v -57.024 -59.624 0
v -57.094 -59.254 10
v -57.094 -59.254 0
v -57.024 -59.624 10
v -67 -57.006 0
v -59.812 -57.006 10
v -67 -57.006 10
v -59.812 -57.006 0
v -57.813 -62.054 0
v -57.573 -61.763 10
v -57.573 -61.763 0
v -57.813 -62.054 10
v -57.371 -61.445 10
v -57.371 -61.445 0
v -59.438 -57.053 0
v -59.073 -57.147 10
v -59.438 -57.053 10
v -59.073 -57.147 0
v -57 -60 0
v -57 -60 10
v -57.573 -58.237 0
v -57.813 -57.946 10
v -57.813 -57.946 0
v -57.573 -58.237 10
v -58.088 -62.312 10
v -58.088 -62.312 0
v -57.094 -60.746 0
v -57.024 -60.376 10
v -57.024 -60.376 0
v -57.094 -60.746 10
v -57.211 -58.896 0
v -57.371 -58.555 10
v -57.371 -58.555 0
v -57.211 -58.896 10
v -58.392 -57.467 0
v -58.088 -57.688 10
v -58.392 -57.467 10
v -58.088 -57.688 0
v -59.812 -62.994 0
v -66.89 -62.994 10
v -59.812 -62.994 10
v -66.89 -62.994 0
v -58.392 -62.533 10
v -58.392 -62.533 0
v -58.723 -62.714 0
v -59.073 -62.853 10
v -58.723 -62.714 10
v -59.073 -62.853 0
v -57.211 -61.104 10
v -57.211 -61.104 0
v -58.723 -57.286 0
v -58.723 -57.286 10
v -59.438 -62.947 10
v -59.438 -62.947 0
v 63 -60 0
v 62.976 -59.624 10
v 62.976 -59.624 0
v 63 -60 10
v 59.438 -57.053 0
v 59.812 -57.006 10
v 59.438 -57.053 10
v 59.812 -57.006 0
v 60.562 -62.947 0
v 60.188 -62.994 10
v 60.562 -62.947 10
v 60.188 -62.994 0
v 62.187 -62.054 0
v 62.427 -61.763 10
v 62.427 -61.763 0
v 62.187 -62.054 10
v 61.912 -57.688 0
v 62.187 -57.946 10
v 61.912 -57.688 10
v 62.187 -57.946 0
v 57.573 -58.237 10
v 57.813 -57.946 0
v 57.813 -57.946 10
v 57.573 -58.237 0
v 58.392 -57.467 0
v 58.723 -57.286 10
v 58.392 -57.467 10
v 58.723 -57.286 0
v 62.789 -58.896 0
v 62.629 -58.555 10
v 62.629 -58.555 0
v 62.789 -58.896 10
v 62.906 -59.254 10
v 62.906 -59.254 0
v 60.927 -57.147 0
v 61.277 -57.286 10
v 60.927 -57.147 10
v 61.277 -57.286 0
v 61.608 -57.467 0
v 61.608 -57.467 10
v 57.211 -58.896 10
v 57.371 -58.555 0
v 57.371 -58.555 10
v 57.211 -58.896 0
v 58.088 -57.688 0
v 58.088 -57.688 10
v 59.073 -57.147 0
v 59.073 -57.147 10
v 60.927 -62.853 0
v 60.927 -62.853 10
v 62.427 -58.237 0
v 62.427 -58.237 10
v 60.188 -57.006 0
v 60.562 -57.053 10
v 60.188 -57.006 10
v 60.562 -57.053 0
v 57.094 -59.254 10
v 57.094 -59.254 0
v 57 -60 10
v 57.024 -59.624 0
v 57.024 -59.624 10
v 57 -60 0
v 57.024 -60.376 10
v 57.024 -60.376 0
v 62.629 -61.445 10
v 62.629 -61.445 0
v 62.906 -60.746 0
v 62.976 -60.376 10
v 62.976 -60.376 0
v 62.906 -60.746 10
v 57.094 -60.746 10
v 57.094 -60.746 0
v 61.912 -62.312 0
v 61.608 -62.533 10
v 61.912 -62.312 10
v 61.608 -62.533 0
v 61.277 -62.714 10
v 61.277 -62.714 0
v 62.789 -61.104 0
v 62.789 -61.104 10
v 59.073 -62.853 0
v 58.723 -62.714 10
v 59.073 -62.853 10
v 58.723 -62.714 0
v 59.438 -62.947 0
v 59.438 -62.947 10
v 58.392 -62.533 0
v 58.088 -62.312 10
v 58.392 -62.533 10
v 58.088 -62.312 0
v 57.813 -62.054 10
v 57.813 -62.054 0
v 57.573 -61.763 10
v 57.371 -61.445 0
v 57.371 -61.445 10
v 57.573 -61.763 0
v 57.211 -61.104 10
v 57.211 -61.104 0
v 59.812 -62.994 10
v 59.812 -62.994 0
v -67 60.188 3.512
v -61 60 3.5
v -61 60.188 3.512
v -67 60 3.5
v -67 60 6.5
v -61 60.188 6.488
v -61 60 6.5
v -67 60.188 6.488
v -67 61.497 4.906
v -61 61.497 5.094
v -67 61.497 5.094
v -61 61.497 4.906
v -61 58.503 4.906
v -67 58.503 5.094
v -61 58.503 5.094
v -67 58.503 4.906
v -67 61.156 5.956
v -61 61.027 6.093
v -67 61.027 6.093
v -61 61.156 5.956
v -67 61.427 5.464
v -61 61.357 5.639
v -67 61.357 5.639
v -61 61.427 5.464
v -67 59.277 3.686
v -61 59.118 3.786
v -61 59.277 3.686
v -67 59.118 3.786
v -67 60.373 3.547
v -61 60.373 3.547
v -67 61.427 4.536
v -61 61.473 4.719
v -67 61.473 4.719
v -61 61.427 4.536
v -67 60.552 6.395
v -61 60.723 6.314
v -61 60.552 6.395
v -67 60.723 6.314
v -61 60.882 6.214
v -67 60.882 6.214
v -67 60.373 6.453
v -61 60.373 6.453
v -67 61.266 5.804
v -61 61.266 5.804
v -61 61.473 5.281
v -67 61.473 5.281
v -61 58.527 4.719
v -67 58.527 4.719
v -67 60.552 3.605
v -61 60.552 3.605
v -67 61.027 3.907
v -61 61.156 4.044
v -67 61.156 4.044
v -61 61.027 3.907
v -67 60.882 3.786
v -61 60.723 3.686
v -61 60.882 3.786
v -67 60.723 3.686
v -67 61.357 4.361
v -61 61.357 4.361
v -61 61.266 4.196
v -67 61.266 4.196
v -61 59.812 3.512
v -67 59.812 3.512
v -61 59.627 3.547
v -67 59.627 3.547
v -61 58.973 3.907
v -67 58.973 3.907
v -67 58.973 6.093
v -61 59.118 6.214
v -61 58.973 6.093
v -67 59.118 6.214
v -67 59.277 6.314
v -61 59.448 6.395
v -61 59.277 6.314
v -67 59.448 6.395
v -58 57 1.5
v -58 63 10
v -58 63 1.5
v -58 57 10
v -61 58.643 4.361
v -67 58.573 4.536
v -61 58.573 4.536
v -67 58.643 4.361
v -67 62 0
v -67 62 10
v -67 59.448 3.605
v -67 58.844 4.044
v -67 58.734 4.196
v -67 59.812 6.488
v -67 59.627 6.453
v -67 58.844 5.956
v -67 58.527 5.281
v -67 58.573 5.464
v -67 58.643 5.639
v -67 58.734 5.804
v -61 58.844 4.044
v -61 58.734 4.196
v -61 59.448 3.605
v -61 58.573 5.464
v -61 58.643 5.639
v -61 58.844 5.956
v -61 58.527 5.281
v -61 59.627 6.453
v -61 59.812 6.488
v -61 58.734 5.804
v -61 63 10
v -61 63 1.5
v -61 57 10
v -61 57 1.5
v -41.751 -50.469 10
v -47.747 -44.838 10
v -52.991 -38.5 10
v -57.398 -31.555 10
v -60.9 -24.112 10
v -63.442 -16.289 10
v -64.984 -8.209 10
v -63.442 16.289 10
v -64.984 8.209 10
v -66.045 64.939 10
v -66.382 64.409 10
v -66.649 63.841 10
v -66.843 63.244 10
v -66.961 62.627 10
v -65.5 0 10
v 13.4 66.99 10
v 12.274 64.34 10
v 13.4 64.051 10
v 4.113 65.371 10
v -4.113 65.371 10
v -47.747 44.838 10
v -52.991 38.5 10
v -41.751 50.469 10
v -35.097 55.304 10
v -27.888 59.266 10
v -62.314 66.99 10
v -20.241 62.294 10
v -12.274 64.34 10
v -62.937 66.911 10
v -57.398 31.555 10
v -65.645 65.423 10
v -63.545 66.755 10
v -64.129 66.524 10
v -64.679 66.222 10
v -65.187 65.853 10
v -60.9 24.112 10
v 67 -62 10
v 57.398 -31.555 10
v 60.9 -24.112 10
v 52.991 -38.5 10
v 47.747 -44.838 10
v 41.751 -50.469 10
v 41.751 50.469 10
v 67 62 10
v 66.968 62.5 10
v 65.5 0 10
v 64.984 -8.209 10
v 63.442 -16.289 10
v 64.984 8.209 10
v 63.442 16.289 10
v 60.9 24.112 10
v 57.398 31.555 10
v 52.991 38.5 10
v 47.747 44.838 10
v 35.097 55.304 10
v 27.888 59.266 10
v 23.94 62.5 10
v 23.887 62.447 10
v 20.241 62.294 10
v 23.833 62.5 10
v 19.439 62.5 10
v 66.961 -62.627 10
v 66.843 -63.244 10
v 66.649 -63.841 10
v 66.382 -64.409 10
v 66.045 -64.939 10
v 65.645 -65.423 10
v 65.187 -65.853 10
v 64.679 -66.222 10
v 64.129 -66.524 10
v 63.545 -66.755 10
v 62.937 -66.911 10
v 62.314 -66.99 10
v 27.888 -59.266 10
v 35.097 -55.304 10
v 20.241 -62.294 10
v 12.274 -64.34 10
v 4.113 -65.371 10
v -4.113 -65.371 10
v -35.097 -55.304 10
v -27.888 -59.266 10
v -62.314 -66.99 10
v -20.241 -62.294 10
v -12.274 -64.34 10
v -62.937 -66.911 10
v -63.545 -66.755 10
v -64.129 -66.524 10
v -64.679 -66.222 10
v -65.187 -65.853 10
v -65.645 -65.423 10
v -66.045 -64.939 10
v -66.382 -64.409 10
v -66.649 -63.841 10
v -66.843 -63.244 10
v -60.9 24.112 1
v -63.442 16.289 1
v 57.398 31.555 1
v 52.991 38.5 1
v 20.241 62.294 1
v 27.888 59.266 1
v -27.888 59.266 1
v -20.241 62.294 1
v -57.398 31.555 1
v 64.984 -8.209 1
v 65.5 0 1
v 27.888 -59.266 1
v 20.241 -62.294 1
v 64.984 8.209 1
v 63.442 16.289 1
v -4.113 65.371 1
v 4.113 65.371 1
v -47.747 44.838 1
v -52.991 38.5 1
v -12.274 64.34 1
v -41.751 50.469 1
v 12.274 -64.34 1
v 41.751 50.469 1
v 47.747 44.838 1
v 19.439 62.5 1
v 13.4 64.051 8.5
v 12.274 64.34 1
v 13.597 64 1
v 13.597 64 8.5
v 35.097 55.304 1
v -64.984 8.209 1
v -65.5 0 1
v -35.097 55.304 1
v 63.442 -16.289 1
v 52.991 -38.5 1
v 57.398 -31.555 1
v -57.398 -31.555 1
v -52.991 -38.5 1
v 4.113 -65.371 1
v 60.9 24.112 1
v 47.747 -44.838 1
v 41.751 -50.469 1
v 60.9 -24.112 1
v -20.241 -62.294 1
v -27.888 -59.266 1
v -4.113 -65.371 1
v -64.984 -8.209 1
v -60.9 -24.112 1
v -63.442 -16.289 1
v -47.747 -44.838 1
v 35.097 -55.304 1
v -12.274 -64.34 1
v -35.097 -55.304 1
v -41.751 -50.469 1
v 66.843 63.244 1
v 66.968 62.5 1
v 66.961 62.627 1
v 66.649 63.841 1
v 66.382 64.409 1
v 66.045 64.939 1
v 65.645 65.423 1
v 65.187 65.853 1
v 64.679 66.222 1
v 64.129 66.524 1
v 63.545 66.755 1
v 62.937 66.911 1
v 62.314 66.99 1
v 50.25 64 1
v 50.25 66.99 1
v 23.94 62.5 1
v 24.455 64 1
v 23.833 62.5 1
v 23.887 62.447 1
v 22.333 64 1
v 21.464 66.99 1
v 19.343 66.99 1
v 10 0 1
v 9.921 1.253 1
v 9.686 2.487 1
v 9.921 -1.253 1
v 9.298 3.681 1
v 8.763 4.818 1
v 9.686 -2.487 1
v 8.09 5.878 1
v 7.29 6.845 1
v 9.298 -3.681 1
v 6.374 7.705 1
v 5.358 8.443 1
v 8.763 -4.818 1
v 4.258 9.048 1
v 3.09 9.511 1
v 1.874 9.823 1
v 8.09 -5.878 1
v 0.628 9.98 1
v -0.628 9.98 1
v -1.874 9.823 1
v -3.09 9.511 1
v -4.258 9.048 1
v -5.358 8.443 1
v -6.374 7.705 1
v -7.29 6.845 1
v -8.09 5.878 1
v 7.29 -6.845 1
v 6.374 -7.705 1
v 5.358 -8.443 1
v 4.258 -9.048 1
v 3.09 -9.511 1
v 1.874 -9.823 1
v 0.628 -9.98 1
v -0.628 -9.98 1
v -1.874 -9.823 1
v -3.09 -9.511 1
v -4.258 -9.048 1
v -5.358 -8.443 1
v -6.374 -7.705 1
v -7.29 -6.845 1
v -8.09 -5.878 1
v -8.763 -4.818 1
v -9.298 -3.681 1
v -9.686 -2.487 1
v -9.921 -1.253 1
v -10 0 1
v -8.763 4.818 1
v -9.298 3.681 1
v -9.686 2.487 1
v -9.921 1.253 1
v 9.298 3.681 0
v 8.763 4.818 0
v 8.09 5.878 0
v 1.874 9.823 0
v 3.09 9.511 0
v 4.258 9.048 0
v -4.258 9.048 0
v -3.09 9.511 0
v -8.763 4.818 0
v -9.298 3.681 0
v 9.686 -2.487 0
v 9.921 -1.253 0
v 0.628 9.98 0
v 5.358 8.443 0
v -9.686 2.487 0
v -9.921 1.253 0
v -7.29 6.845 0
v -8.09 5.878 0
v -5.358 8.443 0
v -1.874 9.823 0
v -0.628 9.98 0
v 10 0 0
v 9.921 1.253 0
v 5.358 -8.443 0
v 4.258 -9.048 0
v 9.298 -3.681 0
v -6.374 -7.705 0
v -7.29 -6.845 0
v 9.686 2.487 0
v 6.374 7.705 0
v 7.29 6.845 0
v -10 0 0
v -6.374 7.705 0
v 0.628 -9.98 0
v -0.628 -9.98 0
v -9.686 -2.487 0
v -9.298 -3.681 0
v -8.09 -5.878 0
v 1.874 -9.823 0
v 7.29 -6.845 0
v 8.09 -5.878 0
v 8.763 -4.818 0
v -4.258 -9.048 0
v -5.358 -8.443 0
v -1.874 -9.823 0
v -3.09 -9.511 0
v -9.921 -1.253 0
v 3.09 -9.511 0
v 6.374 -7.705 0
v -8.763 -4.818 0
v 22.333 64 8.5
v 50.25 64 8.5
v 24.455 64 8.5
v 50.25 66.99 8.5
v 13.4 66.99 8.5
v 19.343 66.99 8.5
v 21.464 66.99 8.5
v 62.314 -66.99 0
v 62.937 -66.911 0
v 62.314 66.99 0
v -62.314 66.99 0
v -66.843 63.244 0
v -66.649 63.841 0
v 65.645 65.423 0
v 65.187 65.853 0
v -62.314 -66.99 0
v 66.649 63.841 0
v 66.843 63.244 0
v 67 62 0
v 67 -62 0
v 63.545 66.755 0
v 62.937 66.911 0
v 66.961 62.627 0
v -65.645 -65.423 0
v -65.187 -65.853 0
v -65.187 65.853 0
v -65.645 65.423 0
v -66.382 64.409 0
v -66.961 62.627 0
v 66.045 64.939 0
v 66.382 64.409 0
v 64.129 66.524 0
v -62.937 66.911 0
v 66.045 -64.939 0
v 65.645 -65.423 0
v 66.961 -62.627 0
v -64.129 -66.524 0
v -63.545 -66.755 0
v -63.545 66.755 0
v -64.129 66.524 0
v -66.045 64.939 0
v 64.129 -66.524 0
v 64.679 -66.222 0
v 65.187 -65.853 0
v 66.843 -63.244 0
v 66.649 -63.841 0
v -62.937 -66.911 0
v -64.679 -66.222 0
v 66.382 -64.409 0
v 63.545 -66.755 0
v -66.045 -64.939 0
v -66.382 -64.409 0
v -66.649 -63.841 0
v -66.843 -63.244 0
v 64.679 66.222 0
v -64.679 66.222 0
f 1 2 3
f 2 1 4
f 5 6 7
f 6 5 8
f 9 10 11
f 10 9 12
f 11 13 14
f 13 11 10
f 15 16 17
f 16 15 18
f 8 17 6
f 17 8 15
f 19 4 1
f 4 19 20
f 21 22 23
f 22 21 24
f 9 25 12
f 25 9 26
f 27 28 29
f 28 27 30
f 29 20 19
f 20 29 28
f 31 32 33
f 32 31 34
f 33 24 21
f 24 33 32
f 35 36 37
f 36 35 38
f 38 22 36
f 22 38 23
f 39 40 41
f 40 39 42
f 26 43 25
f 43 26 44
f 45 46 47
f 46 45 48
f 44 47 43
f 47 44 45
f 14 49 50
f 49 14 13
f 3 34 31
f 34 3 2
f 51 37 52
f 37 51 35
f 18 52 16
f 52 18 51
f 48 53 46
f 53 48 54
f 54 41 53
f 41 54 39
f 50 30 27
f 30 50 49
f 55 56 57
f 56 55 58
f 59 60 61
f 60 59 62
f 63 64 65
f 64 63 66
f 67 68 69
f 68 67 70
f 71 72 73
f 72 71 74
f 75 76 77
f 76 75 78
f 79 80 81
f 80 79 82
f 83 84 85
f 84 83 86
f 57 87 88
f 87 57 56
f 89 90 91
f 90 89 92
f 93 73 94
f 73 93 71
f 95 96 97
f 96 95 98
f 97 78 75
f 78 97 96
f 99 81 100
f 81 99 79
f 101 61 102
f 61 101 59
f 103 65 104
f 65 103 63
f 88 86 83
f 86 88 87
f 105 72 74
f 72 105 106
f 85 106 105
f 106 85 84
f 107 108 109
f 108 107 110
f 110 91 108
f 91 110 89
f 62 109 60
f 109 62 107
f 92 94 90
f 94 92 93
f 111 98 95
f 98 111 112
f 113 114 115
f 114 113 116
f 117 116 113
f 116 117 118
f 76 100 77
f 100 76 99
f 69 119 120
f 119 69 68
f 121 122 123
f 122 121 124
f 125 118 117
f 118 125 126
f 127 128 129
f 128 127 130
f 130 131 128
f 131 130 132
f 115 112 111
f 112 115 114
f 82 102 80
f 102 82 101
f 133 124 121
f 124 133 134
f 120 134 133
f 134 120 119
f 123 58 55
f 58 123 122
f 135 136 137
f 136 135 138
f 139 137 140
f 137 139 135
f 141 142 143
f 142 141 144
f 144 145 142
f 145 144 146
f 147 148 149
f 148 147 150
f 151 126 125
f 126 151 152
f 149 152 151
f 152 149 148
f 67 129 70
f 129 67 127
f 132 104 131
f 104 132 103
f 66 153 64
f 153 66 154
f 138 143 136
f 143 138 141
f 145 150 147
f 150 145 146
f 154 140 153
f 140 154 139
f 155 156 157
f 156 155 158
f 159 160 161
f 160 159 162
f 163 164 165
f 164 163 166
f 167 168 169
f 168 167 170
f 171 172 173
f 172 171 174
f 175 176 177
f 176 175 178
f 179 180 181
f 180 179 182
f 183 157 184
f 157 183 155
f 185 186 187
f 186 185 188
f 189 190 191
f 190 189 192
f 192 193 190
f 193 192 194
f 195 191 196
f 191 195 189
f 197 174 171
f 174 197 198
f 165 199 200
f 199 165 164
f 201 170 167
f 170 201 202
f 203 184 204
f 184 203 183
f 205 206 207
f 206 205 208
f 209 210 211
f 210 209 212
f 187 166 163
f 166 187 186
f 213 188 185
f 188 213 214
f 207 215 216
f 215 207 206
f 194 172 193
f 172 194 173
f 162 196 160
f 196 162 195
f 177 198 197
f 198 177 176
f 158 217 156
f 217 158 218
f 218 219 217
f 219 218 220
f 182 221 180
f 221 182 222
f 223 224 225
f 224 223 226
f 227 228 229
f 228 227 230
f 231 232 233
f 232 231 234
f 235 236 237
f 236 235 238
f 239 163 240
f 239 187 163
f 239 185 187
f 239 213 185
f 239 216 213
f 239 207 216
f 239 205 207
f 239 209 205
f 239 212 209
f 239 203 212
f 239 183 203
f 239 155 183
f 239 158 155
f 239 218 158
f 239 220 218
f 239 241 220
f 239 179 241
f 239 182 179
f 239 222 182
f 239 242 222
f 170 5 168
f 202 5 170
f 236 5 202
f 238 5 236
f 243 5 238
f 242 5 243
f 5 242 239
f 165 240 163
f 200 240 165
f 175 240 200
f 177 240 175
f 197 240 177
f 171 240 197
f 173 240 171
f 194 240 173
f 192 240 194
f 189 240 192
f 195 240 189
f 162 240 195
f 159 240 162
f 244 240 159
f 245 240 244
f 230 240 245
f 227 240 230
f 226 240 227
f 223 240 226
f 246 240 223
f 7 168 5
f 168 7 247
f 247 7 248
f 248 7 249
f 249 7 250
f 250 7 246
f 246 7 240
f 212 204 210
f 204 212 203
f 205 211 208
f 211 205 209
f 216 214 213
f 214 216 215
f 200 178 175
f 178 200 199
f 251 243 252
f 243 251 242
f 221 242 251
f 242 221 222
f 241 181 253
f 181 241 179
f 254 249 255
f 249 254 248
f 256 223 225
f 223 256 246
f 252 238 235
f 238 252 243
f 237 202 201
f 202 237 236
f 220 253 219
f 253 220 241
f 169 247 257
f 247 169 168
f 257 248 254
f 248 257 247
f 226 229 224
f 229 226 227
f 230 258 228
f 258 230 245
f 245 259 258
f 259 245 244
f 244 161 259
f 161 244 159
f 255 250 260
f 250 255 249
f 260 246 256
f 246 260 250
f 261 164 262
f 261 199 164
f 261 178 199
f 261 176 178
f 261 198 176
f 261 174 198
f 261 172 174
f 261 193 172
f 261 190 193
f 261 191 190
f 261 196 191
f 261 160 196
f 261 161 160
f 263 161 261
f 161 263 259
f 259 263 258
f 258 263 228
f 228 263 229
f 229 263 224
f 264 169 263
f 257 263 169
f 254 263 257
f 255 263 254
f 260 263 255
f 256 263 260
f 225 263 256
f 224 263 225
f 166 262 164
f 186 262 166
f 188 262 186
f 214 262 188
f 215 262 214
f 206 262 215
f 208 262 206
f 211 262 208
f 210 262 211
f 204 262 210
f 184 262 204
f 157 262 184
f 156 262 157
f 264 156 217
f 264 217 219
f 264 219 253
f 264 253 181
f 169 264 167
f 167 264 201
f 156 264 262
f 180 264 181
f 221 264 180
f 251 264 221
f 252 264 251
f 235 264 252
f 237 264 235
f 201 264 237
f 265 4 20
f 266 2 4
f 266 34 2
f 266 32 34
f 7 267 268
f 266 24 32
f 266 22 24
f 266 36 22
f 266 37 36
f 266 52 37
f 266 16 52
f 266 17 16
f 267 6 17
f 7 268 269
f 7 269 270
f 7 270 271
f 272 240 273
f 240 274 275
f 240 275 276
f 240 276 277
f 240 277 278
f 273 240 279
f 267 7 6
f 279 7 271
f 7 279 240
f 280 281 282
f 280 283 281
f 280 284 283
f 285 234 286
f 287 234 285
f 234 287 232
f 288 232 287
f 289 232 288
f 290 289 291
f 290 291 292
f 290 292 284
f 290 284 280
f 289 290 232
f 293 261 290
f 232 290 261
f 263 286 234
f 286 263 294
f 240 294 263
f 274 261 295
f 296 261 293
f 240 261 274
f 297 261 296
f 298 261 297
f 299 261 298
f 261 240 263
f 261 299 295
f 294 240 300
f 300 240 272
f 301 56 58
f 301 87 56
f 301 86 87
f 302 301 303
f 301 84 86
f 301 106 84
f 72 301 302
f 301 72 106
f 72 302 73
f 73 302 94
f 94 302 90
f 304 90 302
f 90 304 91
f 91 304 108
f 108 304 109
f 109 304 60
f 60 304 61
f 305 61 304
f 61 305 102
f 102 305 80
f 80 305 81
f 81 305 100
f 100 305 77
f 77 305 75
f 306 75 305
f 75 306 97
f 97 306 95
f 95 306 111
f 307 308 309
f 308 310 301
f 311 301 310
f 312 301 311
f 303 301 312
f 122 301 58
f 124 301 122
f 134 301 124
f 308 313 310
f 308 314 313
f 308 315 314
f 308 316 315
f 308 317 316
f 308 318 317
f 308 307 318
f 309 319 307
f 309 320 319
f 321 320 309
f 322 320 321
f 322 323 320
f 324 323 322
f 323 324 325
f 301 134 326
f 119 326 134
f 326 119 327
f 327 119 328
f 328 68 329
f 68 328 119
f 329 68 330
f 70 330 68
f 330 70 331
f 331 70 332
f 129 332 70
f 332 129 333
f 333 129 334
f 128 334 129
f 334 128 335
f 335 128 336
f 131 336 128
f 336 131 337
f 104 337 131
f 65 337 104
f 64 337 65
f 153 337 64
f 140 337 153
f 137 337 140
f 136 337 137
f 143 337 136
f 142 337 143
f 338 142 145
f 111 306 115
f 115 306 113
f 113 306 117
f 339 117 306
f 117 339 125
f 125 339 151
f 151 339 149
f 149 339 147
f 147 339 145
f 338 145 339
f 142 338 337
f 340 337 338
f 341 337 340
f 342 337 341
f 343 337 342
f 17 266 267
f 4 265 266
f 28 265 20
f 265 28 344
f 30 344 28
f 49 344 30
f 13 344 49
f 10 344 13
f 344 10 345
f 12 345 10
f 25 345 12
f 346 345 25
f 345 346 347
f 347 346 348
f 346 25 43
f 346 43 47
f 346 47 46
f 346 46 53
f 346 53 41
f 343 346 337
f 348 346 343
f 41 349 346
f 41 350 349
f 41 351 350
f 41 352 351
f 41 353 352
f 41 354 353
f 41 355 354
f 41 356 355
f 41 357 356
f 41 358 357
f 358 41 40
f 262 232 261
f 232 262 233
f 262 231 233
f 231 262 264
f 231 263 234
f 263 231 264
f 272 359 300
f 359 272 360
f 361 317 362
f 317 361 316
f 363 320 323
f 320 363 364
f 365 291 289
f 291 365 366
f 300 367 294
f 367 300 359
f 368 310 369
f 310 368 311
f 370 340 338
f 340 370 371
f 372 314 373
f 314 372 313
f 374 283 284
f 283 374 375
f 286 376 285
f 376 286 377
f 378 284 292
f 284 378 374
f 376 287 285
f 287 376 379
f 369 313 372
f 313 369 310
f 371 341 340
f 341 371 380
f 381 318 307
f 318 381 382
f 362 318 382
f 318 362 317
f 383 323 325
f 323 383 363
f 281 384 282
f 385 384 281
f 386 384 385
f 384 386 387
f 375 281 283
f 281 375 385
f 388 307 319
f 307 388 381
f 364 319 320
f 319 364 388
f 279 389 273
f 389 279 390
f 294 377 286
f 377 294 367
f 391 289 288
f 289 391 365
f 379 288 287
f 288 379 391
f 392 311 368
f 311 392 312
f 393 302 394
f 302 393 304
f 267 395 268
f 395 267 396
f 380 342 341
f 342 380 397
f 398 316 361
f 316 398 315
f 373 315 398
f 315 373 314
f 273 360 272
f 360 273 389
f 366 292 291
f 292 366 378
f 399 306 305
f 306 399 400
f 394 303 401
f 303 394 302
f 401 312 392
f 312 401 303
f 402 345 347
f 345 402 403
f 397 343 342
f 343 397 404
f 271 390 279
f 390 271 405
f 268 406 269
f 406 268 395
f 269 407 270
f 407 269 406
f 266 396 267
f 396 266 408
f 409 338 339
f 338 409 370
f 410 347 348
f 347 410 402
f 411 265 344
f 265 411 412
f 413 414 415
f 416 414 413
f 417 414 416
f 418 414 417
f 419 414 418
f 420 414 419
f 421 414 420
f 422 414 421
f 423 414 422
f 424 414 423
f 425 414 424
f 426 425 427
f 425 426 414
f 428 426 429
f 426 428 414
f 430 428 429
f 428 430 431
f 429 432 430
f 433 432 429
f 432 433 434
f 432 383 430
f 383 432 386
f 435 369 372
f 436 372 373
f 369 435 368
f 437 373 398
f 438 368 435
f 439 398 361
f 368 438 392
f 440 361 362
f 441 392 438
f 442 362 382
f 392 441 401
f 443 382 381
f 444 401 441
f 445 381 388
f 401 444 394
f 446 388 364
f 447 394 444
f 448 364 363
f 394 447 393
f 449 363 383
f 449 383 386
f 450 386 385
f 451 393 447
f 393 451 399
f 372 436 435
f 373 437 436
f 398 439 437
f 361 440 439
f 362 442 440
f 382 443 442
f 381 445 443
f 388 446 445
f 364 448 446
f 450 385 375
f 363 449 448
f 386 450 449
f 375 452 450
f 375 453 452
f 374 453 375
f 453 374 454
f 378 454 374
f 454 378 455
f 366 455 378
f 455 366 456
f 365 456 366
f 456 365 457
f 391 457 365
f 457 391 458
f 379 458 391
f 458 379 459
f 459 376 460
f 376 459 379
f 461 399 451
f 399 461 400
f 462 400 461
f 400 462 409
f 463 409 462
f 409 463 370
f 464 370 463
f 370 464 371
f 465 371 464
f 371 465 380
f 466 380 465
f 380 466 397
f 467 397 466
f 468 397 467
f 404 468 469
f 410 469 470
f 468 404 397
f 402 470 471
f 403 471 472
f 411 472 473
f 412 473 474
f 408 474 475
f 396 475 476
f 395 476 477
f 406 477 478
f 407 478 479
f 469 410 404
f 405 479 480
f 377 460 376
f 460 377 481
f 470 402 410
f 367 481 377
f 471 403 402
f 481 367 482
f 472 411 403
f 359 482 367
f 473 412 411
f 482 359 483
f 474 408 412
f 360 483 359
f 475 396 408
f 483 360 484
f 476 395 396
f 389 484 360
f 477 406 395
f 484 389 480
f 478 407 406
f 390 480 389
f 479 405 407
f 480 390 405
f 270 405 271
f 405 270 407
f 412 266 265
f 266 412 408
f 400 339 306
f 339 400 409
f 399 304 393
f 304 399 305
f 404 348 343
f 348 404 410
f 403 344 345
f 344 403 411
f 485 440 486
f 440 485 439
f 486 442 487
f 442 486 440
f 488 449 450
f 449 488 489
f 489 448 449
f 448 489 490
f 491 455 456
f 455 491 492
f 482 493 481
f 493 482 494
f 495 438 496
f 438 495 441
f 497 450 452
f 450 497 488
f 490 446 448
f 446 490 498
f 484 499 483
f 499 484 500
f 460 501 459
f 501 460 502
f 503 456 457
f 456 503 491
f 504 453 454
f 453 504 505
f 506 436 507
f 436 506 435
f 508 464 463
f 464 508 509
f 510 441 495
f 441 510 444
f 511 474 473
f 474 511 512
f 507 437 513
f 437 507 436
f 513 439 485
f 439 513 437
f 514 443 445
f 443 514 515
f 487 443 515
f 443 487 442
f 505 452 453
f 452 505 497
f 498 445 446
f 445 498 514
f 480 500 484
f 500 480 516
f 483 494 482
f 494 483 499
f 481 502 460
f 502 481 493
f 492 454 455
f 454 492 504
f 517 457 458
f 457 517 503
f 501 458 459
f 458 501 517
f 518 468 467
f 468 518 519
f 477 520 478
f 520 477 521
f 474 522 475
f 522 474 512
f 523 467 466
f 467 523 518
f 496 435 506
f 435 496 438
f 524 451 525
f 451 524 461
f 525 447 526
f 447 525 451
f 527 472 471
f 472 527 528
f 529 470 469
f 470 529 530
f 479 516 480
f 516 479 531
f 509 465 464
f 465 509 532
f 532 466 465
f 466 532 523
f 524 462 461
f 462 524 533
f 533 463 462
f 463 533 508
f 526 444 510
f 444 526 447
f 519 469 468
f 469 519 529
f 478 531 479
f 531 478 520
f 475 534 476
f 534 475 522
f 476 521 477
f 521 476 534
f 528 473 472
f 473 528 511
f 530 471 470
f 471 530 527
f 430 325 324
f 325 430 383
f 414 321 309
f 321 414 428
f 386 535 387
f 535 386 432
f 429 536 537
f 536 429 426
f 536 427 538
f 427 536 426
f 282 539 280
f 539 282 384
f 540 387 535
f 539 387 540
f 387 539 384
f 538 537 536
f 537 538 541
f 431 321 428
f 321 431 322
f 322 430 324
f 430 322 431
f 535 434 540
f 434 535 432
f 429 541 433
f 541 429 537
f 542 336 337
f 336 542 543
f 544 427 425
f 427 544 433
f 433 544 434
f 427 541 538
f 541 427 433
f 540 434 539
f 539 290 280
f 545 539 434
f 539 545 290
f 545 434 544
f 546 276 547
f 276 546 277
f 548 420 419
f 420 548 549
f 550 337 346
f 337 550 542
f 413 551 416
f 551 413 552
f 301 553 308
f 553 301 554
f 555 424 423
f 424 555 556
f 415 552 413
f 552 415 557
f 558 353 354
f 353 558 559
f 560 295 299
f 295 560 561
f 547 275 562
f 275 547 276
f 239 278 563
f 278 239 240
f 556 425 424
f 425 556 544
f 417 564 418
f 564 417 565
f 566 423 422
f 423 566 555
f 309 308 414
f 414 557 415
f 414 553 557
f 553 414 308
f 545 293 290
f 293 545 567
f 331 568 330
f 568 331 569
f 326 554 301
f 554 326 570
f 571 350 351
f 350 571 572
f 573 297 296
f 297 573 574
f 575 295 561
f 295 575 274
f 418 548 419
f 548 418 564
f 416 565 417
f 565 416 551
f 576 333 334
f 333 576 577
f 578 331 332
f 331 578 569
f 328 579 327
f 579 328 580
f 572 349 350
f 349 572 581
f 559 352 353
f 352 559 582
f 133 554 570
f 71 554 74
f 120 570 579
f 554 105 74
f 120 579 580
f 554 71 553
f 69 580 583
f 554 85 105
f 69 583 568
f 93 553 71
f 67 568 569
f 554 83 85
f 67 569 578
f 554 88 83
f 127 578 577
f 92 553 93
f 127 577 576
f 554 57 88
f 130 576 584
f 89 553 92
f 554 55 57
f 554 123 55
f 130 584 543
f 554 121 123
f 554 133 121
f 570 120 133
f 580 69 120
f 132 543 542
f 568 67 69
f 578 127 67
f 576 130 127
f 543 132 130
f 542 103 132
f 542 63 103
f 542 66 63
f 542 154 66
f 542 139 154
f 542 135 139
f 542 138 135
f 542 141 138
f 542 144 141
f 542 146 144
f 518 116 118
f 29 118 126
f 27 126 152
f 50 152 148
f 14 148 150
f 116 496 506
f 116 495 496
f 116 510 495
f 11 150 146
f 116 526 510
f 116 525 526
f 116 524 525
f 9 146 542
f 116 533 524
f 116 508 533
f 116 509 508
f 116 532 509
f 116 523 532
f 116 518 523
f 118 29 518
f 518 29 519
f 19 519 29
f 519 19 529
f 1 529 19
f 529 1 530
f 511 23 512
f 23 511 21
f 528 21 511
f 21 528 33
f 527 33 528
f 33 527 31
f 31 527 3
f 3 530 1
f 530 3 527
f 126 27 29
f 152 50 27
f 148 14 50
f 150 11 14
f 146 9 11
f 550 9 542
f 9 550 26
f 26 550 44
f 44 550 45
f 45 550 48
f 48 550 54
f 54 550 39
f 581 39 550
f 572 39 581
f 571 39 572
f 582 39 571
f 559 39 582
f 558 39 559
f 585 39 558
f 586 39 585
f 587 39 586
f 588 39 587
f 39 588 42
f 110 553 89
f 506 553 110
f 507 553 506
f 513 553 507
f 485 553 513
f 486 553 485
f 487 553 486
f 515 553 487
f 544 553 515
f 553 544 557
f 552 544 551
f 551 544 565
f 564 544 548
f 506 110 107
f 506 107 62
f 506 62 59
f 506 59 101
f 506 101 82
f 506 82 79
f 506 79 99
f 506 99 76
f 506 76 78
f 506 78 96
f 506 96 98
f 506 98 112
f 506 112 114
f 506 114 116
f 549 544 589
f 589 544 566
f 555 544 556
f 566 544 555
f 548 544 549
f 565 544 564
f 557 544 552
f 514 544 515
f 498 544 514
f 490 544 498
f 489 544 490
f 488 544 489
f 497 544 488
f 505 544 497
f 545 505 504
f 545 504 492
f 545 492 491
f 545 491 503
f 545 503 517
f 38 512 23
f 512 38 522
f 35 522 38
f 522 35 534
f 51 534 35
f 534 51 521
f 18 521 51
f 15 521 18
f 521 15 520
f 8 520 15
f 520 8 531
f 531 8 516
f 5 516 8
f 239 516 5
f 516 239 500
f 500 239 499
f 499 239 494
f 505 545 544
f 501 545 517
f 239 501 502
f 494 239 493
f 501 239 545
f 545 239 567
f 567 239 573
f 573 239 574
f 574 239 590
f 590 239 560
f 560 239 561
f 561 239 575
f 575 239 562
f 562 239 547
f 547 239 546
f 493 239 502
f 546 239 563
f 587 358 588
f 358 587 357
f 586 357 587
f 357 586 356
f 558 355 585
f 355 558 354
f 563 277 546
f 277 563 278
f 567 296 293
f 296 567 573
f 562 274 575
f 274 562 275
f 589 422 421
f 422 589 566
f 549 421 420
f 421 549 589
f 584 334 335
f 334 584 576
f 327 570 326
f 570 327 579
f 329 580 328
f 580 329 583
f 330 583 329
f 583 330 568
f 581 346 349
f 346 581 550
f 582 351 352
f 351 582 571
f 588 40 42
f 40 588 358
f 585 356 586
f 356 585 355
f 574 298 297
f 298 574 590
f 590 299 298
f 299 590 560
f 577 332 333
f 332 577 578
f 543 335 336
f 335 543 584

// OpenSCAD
$fn = 50;


difference() {
	union() {
		translate(v = [0, 0, 0]) {
			rotate(a = [0, 0, 0]) {
				hull() {
					translate(v = [-62.0000000000, 62.0000000000, 0]) {
						rotate(a = [0, 0, 0]) {
							translate(v = [0, 0, 0]) {
								rotate(a = [0, 0, 0]) {
									cylinder(h = 10, r = 5);
								}
							}
						}
					}
					translate(v = [62.0000000000, 62.0000000000, 0]) {
						rotate(a = [0, 0, 0]) {
							translate(v = [0, 0, 0]) {
								rotate(a = [0, 0, 0]) {
									cylinder(h = 10, r = 5);
								}
							}
						}
					}
					translate(v = [-62.0000000000, -62.0000000000, 0]) {
						rotate(a = [0, 0, 0]) {
							translate(v = [0, 0, 0]) {
								rotate(a = [0, 0, 0]) {
									cylinder(h = 10, r = 5);
								}
							}
						}
					}
					translate(v = [62.0000000000, -62.0000000000, 0]) {
						rotate(a = [0, 0, 0]) {
							translate(v = [0, 0, 0]) {
								rotate(a = [0, 0, 0]) {
									cylinder(h = 10, r = 5);
								}
							}
						}
					}
				}
			}
		}
	}
	union() {
		translate(v = [-67.5000000000, -60.0000000000, -125]) {
			rotate(a = [0, 0, 0]) {
				hull() {
					translate(v = [7.5000000000, 0, 0]) {
						rotate(a = [0, 0, 0]) {
							translate(v = [0, 0, 0]) {
								rotate(a = [0, 0, 0]) {
									cylinder(h = 250, r = 3.0000000000);
								}
							}
						}
					}
					translate(v = [-7.5000000000, 0, 0]) {
						rotate(a = [0, 0, 0]) {
							translate(v = [0, 0, 0]) {
								rotate(a = [0, 0, 0]) {
									cylinder(h = 250, r = 3.0000000000);
								}
							}
						}
					}
				}
			}
		}
		translate(v = [60.0000000000, -60.0000000000, -125.0000000000]) {
			rotate(a = [0, 0, 0]) {
				cylinder(h = 250, r = 3.0000000000);
			}
		}
		translate(v = [-67.0000000000, 60.0000000000, 5.0000000000]) {
			rotate(a = [0, 90, 0]) {
				cylinder(h = 9, r = 1.5000000000);
			}
		}
		translate(v = [-61.0000000000, 57.0000000000, 1.5000000000]) {
			rotate(a = [0, 0, 0]) {
				cube(size = [3, 6, 8.5000000000]);
			}
		}
		translate(v = [0, 0, 1.0000000000]) {
			rotate(a = [0, 0, 0]) {
				cylinder(h = 12, r = 65.5000000000);
			}
		}
		translate(v = [0, 0, -5.0000000000]) {
			rotate(a = [0, 0, 0]) {
				cylinder(h = 10, r = 10.0000000000);
			}
		}
		translate(v = [0.0000000000, 62.5000000000, 1]) {
			rotate(a = [0, 0, 0]) {
				cube(size = [67.0000000000, 1.5000000000, 12]);
			}
		}
		translate(v = [50.2500000000, 62.5000000000, 1]) {
			rotate(a = [0, 0, 0]) {
				cube(size = [16.7500000000, 4.5000000000, 12]);
			}
		}
		translate(v = [13.4000000000, 62.5000000000, 8.5000000000]) {
			rotate(a = [0, 0, 0]) {
				cube(size = [53.6000000000, 4.5000000000, 1.5000000000]);
			}
		}
		translate(v = [18.5833333333, 67.7500000000, 1]) {
			rotate(a = [0, 0, -45]) {
				cube(size = [7.5000000000, 1.5000000000, 12]);
			}
		}
	}
}
